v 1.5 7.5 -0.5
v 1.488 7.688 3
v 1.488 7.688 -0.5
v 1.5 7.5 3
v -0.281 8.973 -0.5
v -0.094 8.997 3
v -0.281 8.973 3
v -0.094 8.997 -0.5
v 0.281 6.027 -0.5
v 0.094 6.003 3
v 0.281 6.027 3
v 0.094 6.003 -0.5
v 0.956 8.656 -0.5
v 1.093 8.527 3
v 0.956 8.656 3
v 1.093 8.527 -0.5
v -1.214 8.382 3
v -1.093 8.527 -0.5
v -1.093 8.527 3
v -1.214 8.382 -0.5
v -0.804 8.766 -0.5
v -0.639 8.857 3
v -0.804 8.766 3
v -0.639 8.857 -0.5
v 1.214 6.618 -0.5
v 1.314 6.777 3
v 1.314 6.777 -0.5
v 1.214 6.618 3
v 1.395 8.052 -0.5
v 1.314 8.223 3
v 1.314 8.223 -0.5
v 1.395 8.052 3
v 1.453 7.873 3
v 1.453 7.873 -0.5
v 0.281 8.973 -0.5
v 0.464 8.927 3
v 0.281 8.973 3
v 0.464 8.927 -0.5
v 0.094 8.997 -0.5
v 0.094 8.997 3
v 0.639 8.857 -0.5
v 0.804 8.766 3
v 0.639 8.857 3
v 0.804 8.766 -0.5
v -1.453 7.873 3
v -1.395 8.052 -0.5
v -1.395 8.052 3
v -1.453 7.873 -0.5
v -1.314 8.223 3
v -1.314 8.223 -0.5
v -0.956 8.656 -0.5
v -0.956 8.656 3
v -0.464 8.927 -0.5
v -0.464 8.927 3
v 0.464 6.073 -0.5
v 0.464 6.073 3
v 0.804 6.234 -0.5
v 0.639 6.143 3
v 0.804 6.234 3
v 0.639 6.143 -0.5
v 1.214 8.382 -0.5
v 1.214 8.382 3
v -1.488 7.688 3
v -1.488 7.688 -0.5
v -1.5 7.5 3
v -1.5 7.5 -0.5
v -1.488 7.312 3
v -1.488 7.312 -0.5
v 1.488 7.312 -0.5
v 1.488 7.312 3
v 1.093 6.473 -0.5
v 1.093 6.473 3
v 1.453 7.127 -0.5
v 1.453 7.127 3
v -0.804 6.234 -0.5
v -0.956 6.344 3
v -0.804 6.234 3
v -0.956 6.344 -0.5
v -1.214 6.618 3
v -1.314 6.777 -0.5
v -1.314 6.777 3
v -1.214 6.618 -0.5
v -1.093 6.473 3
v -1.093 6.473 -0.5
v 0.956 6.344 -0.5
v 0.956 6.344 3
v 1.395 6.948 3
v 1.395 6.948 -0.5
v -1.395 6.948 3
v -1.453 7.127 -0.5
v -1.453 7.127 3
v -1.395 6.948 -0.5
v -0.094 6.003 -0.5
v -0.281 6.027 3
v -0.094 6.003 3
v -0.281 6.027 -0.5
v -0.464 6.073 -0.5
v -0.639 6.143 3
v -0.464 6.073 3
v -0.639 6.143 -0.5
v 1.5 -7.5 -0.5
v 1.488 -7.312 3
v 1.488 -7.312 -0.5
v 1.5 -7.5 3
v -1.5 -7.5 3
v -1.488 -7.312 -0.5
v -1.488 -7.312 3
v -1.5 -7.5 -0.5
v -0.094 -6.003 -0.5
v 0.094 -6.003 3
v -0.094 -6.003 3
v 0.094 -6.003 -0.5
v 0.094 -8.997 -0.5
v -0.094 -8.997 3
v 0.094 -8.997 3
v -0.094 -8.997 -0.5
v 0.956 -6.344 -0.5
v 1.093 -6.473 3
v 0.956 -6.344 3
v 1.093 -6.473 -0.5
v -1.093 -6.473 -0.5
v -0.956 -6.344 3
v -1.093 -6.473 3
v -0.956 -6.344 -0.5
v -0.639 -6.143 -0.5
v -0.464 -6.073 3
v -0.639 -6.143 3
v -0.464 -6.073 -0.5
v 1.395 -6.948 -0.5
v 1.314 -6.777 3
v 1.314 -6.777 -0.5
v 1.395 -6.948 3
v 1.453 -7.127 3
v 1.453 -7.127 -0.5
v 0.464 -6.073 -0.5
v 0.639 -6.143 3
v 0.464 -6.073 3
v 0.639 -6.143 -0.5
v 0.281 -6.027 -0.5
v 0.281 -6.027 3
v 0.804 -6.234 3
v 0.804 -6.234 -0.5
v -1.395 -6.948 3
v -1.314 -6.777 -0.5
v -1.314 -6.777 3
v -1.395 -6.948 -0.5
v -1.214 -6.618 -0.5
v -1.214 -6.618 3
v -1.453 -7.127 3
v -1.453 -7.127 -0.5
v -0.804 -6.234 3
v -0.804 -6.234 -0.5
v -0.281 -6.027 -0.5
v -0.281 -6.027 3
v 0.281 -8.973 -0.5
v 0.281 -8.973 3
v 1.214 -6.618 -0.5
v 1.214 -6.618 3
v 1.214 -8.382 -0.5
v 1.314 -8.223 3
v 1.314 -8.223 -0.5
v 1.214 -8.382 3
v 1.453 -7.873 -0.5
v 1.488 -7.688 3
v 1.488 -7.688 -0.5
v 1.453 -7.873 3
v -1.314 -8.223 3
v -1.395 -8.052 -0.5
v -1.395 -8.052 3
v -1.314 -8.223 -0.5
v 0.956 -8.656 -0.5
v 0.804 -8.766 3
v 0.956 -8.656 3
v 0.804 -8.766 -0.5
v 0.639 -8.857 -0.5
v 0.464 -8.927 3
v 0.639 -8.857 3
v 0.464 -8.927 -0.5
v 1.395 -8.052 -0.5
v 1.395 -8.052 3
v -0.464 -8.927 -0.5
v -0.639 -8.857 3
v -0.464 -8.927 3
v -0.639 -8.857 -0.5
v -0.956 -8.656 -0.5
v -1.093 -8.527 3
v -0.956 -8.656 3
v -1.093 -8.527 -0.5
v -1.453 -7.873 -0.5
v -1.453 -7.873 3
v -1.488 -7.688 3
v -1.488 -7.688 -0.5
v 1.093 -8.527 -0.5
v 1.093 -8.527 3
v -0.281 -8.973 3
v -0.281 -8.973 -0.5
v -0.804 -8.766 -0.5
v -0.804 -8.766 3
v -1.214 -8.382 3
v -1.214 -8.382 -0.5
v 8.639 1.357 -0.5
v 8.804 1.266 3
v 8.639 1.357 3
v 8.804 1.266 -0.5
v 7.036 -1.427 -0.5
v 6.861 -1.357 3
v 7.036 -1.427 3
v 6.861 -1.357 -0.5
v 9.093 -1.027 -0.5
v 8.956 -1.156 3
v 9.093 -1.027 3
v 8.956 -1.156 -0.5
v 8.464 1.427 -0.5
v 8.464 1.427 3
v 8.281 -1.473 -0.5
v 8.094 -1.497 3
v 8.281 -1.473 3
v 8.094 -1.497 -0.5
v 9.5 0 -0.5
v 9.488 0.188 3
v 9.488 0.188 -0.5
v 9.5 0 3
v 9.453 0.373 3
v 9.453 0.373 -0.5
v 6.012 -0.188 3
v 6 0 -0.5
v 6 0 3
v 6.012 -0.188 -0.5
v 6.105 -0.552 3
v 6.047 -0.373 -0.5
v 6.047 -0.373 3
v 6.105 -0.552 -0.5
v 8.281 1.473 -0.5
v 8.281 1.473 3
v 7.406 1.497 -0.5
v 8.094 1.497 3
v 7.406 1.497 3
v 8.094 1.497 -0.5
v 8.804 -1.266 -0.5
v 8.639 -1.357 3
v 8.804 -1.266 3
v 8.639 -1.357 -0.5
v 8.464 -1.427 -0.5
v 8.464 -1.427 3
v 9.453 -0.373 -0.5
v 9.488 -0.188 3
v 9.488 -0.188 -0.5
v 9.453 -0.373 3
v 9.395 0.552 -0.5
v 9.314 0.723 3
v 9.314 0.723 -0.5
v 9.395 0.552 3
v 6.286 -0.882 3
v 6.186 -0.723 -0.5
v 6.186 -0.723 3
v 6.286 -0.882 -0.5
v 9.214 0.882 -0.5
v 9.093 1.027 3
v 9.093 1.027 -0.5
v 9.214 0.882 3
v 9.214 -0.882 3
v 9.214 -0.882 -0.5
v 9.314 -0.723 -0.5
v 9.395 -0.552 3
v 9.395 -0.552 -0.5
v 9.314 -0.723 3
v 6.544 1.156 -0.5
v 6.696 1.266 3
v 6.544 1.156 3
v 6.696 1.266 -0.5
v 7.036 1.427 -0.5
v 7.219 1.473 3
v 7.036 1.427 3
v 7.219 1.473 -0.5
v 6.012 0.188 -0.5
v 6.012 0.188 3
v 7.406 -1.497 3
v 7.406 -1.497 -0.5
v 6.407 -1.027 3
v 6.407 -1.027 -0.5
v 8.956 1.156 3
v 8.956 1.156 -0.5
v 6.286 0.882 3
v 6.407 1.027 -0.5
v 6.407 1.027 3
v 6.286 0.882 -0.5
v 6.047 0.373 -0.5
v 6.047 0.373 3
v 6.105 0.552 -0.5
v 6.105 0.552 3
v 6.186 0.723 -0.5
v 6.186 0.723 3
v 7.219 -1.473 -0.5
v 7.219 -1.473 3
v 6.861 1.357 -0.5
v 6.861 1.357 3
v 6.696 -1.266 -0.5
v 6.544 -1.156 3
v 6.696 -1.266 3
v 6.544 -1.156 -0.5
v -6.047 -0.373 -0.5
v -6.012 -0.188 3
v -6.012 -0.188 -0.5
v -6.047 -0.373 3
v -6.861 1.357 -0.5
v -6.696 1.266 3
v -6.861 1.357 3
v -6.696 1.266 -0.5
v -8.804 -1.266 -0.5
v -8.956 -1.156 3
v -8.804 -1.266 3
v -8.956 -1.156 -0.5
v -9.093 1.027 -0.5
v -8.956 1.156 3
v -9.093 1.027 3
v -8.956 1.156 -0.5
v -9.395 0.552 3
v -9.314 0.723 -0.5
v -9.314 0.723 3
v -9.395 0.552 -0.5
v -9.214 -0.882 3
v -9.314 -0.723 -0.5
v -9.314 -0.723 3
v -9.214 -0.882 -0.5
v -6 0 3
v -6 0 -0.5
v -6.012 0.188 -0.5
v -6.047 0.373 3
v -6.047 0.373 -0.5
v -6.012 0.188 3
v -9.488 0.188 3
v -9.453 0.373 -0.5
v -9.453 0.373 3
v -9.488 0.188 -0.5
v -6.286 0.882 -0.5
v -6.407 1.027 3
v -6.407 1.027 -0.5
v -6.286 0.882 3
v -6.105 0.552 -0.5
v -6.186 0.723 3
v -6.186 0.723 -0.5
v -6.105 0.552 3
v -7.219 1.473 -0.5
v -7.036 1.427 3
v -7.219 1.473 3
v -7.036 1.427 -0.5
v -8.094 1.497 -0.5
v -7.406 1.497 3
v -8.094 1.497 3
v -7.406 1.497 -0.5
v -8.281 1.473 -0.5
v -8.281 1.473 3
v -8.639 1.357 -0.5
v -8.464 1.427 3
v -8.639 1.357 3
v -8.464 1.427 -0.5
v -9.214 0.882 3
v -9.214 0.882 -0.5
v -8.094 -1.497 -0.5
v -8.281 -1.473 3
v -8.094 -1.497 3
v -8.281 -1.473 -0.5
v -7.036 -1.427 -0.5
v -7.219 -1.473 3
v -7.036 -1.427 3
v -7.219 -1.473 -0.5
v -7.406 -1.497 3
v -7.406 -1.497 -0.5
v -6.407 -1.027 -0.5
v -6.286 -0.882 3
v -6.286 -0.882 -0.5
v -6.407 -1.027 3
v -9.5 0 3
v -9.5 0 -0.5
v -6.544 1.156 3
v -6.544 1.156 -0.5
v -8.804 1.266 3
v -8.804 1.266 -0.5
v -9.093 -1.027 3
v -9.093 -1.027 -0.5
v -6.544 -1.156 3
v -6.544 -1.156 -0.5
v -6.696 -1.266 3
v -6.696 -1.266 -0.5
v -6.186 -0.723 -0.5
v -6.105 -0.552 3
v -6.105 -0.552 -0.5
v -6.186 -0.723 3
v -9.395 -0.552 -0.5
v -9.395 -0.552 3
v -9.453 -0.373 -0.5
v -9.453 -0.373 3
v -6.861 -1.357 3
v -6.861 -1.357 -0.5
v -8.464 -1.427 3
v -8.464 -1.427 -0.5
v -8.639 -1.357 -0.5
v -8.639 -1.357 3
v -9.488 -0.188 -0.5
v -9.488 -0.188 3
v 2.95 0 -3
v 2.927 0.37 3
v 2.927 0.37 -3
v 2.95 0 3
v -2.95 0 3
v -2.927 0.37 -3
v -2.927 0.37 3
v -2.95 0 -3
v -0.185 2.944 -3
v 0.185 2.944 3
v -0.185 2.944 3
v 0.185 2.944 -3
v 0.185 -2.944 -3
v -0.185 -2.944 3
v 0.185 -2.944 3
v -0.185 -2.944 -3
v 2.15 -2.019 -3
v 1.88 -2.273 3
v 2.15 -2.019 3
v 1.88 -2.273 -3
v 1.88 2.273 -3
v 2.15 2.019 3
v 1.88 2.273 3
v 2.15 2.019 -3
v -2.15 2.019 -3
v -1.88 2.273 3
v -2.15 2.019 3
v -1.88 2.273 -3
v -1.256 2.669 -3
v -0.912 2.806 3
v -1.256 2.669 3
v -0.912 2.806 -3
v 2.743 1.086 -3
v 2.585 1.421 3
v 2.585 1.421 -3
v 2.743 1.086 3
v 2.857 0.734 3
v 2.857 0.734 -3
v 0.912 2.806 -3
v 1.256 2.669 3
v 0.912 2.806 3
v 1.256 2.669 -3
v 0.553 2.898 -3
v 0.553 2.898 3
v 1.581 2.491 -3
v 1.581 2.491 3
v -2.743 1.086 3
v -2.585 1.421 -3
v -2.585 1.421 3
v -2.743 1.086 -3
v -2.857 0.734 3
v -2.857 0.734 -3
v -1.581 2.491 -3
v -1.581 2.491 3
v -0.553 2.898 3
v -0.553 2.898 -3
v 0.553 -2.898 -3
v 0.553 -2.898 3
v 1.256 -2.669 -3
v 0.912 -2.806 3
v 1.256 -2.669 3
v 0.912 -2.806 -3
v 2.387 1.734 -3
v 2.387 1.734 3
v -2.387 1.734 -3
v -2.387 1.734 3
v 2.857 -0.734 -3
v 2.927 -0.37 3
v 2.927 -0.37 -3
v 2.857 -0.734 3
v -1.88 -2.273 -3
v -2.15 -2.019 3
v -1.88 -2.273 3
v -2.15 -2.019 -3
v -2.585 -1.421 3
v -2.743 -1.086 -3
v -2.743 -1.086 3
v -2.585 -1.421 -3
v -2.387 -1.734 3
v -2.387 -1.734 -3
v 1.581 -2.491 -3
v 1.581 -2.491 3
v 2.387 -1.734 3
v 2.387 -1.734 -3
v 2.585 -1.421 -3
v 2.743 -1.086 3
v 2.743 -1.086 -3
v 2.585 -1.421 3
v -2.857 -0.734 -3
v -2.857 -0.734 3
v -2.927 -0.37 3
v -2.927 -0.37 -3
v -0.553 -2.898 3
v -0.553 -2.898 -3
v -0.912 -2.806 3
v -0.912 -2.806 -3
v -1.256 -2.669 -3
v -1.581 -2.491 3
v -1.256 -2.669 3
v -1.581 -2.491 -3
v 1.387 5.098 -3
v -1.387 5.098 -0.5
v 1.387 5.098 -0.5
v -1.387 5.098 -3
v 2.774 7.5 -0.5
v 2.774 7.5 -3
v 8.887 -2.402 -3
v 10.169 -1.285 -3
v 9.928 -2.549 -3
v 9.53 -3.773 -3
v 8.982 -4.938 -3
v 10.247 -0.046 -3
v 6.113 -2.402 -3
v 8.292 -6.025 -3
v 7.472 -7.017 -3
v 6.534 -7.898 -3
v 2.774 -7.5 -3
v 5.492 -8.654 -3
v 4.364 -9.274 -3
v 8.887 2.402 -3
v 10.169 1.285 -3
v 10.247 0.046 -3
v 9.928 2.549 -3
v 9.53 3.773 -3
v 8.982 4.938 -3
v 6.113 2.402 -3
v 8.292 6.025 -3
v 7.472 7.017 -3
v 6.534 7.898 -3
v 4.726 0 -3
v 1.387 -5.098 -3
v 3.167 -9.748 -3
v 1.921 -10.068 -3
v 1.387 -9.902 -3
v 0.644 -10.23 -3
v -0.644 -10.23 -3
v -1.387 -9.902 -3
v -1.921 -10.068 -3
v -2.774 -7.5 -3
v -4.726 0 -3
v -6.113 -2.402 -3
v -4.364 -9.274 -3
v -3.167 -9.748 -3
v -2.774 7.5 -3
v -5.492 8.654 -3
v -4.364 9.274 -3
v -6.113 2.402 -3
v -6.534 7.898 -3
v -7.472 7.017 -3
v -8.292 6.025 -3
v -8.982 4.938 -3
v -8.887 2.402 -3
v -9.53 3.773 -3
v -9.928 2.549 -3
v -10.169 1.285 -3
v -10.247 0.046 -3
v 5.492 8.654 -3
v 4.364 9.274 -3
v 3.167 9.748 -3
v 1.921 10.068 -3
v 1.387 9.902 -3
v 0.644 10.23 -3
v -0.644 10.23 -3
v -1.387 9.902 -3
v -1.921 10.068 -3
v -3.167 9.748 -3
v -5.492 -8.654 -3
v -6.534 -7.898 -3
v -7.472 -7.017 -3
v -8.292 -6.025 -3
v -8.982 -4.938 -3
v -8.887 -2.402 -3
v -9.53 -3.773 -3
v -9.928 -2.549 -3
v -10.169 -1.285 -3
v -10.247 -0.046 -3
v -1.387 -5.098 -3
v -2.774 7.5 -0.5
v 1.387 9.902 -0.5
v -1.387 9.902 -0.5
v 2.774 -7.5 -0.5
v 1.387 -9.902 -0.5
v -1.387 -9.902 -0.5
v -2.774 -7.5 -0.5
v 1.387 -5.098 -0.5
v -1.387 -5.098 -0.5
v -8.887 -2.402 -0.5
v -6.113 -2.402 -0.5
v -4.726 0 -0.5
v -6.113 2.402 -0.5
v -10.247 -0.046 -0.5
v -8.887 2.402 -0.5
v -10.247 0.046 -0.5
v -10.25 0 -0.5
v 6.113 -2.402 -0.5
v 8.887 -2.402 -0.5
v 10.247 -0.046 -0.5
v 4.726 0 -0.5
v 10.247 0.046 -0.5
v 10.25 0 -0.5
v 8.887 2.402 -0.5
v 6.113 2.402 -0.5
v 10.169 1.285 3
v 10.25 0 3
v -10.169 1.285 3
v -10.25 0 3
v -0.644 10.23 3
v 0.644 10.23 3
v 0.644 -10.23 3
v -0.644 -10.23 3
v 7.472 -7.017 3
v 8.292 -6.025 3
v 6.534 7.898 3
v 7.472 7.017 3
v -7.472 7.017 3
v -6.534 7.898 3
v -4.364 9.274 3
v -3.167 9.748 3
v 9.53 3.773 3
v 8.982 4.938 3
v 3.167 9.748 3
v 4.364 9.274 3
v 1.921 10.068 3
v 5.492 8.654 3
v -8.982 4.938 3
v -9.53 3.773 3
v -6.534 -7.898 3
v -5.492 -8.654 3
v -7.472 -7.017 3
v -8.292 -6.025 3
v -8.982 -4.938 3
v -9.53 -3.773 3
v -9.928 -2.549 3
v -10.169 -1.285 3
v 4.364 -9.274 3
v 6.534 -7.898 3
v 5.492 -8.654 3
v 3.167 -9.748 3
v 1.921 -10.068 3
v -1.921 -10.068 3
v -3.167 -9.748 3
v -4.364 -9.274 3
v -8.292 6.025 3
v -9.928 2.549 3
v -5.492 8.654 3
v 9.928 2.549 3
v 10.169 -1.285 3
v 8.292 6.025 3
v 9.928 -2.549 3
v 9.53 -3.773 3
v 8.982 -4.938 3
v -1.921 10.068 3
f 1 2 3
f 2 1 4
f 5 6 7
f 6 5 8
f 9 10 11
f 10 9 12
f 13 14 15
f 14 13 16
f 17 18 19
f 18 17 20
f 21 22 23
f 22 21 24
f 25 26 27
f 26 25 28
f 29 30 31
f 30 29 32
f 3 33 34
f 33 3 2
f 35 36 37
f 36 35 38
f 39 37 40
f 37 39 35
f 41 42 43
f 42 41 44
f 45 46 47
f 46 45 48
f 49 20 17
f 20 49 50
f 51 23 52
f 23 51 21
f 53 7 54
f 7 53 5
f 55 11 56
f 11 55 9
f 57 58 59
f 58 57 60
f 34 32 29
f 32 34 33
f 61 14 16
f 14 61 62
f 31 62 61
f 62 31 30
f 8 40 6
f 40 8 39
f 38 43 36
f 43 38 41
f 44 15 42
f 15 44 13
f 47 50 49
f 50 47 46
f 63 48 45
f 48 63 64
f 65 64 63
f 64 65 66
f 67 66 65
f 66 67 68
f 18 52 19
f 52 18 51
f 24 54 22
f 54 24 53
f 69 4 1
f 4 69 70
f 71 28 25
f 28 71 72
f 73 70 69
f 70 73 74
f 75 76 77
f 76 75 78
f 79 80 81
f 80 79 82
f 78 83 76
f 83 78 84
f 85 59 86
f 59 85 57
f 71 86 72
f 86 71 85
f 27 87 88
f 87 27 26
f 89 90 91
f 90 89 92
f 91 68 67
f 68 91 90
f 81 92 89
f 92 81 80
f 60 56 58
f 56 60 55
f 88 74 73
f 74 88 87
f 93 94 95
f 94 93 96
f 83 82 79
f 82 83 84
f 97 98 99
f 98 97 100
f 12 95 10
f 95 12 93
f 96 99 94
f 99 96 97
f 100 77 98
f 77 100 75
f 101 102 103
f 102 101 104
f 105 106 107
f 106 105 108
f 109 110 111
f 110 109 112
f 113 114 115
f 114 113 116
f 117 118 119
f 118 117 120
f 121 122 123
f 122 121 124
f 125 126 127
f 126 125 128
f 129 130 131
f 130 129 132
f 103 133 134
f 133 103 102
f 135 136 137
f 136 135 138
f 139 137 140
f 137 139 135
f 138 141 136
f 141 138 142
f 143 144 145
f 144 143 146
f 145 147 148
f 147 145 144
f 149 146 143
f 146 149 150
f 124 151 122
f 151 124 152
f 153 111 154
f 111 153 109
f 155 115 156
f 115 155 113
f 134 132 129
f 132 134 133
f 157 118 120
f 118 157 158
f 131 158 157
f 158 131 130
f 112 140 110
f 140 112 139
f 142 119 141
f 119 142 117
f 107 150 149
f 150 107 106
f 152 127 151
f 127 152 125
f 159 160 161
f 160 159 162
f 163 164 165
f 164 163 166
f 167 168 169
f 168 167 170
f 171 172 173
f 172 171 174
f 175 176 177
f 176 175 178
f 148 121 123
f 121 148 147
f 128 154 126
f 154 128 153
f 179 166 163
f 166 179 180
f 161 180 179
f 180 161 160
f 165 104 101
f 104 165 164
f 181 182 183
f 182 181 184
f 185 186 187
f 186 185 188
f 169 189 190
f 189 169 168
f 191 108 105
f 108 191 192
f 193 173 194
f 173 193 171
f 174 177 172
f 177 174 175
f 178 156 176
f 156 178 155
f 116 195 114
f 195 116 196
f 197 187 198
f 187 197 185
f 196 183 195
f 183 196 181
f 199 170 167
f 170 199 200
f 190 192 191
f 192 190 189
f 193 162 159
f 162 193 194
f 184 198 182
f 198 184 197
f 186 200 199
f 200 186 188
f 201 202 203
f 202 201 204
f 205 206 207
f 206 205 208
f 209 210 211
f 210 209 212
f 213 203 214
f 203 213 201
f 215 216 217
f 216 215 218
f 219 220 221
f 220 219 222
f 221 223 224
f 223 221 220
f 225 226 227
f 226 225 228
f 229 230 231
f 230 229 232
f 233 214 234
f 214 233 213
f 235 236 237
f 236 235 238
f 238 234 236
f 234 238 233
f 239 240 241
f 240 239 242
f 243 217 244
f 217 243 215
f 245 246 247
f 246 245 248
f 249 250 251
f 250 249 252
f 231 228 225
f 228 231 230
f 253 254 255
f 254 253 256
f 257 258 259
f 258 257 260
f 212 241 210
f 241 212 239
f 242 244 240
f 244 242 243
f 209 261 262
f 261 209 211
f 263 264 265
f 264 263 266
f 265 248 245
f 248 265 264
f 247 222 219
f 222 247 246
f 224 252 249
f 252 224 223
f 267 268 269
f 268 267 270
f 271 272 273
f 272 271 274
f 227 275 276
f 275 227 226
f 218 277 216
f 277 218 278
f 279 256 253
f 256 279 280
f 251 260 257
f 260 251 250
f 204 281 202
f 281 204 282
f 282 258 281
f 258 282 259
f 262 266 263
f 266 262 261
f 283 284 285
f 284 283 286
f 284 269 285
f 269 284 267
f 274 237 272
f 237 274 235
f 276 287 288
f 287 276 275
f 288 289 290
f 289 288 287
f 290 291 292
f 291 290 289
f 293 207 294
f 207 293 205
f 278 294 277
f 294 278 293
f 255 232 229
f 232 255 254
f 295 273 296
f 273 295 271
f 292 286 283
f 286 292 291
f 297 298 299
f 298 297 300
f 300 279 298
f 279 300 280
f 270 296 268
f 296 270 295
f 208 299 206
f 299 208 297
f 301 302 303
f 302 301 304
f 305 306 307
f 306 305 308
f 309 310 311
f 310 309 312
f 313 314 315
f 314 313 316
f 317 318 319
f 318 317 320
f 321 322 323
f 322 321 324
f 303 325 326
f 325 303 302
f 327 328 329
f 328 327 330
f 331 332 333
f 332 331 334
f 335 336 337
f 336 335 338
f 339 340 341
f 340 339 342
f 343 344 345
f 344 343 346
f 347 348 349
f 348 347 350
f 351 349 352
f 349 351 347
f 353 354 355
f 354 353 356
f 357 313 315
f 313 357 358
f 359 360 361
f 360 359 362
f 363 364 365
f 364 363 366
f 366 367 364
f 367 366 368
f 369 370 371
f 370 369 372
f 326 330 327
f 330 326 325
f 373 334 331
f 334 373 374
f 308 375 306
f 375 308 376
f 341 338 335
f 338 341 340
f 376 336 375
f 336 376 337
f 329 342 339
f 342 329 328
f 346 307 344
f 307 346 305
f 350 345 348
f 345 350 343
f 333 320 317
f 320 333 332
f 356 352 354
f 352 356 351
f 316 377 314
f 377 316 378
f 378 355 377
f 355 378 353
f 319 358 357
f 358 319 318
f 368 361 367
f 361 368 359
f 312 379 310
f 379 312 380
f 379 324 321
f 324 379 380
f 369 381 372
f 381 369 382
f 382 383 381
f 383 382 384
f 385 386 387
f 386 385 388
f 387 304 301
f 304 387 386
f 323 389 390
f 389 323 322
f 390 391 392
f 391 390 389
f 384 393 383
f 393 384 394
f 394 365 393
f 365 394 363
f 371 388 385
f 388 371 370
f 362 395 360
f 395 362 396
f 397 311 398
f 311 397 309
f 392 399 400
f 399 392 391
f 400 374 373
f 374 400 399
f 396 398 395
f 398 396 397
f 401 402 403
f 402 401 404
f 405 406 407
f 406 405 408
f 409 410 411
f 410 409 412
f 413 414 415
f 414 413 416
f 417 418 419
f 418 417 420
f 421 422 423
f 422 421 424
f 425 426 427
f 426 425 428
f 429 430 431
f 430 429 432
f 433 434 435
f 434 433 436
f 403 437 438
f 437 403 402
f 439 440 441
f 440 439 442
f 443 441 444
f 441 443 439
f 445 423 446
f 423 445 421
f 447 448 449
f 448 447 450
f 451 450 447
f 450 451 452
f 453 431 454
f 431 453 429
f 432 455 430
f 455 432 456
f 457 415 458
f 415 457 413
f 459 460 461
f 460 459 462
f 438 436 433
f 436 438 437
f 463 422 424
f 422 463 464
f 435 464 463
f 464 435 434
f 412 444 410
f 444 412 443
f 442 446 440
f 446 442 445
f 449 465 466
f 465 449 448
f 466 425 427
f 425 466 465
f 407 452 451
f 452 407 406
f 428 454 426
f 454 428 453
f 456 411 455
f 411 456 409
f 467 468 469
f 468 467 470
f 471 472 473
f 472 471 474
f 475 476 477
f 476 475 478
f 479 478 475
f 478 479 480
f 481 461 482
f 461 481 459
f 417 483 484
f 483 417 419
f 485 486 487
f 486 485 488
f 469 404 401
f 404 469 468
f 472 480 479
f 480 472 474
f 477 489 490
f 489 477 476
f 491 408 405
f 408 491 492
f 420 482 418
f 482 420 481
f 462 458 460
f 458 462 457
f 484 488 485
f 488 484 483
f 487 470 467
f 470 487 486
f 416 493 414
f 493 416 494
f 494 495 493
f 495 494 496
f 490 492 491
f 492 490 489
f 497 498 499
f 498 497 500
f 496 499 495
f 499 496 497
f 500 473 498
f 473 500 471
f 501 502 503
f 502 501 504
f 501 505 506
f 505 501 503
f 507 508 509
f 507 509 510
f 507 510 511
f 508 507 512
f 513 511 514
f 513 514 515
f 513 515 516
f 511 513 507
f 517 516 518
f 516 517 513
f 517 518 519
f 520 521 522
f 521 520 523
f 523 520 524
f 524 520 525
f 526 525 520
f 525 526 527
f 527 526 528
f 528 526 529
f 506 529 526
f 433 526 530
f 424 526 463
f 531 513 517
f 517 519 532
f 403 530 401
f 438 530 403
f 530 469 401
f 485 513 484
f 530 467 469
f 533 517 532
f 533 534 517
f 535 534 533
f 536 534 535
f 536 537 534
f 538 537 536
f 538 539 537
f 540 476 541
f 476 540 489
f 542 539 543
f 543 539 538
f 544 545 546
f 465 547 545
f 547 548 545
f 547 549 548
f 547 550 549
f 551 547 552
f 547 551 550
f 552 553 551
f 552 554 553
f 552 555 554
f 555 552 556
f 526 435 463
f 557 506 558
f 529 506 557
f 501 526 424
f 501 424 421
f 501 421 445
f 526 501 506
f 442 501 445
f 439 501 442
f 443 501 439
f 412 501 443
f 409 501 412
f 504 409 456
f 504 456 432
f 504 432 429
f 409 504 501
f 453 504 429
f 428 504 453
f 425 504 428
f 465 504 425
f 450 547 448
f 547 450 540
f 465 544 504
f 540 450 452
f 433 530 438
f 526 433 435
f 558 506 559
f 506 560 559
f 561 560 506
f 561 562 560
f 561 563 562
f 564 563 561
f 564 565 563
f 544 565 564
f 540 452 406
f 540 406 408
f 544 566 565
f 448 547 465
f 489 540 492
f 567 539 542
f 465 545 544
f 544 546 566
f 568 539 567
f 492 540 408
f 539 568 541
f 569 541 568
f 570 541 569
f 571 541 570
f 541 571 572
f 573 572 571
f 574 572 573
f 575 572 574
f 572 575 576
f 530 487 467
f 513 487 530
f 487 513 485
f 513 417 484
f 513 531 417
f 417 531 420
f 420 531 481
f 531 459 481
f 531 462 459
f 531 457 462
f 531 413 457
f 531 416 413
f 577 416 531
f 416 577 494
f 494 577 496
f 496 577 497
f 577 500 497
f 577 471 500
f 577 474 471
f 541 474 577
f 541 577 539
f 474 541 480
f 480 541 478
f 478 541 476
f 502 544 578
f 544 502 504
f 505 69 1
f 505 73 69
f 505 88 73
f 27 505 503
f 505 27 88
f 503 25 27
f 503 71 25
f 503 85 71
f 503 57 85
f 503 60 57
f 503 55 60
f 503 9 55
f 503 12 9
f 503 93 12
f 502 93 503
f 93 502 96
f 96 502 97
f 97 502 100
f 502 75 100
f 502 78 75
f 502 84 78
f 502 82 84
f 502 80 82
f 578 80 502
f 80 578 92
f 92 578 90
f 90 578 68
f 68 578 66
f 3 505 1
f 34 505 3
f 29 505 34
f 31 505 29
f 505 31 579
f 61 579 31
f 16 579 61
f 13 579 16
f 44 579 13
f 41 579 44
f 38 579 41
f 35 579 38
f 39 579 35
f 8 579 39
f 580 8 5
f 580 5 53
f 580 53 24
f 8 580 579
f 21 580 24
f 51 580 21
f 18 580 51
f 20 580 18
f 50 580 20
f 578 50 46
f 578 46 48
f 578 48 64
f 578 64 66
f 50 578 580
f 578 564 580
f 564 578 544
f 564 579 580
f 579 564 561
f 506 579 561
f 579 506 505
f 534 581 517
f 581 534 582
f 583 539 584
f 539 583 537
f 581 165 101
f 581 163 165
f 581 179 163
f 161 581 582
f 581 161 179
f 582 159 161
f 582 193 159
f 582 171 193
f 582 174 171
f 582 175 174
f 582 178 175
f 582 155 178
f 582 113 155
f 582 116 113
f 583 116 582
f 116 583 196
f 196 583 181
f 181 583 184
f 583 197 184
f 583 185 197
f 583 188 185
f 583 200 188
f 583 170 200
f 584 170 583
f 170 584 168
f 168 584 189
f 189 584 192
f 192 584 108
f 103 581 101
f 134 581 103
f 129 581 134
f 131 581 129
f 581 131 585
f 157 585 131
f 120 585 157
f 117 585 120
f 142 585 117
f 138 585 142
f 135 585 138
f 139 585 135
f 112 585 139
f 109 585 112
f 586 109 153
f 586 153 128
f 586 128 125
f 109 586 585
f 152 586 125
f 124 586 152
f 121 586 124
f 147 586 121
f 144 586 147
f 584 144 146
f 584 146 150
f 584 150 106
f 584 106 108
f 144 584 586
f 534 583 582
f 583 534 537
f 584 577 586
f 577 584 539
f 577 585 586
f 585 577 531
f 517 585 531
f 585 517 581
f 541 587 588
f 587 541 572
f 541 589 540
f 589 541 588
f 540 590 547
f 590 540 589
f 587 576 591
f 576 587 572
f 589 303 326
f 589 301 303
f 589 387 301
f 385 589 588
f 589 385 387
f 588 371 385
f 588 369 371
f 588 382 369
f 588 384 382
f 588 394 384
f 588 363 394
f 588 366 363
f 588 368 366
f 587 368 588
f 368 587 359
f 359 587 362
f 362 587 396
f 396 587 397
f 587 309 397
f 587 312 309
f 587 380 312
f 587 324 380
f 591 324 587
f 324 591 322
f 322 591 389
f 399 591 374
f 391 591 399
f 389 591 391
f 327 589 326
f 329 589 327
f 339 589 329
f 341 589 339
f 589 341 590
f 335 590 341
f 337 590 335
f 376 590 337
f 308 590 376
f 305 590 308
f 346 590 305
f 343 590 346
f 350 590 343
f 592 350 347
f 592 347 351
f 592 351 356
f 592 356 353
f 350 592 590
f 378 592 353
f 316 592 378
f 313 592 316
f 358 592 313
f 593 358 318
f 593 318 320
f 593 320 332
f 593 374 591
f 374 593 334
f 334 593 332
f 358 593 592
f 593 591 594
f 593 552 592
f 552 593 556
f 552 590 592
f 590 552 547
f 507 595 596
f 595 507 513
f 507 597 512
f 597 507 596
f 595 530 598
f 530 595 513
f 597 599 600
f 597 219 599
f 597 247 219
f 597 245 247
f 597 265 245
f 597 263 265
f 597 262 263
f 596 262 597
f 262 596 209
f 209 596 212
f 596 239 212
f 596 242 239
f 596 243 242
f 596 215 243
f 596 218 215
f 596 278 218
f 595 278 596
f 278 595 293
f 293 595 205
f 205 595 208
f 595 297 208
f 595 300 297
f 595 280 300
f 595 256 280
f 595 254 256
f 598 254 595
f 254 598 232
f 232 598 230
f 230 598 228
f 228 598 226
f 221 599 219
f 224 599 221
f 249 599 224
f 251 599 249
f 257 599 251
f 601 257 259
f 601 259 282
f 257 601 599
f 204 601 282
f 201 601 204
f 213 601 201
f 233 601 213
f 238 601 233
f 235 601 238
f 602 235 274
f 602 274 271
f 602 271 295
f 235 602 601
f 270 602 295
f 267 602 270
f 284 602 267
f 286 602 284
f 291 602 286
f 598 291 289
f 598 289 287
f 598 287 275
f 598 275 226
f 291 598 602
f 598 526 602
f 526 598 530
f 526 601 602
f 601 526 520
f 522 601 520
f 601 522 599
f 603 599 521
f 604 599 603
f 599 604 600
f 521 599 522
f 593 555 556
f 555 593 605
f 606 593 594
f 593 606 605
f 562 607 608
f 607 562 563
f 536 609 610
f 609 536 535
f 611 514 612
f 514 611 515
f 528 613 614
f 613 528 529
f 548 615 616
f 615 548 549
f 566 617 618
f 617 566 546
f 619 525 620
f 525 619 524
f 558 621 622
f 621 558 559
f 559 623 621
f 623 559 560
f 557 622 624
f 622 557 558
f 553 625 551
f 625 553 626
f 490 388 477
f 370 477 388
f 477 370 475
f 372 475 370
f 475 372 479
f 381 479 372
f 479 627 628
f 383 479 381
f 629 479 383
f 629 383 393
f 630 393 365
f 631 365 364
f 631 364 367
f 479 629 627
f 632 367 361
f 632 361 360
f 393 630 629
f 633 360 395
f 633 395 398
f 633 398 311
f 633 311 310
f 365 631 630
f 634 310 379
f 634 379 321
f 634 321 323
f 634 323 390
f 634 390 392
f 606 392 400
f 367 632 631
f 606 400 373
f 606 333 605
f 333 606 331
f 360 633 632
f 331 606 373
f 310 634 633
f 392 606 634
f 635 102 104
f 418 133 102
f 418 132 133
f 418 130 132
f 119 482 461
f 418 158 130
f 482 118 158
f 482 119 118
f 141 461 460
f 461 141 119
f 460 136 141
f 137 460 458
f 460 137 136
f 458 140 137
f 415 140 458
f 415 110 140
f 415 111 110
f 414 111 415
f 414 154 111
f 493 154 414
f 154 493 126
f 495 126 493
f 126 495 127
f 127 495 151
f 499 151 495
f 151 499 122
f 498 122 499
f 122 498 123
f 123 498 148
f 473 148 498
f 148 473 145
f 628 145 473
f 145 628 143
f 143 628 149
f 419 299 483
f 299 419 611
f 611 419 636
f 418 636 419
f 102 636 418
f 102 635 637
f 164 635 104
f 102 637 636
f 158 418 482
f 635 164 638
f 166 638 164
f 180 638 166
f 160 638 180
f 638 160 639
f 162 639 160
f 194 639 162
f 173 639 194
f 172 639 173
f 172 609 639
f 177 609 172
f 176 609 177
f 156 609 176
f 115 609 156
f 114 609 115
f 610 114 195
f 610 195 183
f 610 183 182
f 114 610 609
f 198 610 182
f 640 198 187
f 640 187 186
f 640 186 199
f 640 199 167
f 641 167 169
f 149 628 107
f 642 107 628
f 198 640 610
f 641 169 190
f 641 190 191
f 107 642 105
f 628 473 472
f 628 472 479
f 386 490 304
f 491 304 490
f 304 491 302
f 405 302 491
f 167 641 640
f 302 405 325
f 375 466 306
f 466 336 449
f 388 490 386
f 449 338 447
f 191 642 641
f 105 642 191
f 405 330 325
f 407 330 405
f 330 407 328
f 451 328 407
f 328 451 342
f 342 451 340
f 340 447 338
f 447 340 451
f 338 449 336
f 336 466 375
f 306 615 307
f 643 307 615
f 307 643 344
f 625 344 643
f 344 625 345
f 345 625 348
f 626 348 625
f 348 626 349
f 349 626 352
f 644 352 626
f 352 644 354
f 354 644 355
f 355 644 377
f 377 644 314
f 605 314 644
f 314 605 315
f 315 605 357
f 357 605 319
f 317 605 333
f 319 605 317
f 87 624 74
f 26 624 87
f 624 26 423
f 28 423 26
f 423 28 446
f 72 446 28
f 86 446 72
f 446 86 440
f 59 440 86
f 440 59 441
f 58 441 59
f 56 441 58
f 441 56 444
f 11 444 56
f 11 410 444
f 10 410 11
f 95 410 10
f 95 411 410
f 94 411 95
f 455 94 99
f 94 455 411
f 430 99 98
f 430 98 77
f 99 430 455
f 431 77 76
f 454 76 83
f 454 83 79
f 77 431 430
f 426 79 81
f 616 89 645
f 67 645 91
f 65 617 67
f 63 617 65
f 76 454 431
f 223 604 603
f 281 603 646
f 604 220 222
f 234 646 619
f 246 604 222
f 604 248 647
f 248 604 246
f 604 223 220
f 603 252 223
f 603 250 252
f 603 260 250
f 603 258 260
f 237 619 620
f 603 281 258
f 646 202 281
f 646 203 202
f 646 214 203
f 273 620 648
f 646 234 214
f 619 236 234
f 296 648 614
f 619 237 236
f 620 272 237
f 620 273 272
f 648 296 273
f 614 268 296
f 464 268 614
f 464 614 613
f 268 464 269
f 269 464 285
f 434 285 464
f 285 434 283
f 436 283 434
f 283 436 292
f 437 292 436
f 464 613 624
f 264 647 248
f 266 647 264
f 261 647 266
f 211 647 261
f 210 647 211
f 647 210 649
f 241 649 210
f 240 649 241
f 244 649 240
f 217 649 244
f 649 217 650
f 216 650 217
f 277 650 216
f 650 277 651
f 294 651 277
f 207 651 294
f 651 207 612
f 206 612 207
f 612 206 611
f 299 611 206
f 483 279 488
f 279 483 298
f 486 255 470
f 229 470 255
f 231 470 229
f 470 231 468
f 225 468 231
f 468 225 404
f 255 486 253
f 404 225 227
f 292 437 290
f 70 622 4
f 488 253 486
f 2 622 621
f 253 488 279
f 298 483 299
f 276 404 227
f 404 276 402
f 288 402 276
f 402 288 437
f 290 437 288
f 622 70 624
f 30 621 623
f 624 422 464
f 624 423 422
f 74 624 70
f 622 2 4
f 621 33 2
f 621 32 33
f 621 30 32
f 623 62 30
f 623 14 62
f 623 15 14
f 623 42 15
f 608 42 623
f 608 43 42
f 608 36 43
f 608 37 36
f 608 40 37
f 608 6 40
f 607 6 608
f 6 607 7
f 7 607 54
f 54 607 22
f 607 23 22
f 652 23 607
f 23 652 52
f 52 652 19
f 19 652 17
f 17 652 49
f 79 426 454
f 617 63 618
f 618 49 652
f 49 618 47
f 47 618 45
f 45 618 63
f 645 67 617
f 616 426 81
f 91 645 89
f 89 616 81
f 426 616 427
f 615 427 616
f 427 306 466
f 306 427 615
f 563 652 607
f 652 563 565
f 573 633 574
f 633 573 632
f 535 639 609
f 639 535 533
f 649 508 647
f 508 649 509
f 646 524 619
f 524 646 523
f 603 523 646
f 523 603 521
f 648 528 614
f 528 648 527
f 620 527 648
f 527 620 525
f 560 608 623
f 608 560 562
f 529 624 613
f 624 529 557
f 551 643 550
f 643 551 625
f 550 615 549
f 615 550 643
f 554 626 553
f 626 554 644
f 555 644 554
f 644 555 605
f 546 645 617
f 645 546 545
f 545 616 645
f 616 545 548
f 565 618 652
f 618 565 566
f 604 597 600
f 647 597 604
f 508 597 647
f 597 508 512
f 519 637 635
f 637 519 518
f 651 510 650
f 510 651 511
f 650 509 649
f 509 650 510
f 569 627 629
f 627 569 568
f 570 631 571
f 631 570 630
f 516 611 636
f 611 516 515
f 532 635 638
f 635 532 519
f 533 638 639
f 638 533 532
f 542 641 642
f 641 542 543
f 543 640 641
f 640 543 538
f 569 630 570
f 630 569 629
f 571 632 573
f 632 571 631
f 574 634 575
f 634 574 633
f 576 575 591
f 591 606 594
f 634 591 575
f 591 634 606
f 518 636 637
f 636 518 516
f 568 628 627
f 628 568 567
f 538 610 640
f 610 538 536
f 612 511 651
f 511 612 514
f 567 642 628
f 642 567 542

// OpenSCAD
$fn = 50;


difference() {
	union() {
		translate(v = [0, 0, -3.0000000000]) {
			rotate(a = [0, 0, 0]) {
				cylinder(h = 6, r = 10.2500000000);
			}
		}
	}
	union() {
		translate(v = [0, 7.5000000000, -125.0000000000]) {
			rotate(a = [0, 0, 0]) {
				cylinder(h = 250, r = 1.5000000000);
			}
		}
		translate(v = [0, -7.5000000000, -125.0000000000]) {
			rotate(a = [0, 0, 0]) {
				cylinder(h = 250, r = 1.5000000000);
			}
		}
		translate(v = [7.7500000000, 0, -125.0000000000]) {
			rotate(a = [0, 0, 0]) {
				hull() {
					translate(v = [0.2500000000, 0, 0]) {
						rotate(a = [0, 0, 0]) {
							translate(v = [0, 0, 0]) {
								rotate(a = [0, 0, 0]) {
									cylinder(h = 250, r = 1.5000000000);
								}
							}
						}
					}
					translate(v = [-0.2500000000, 0, 0]) {
						rotate(a = [0, 0, 0]) {
							translate(v = [0, 0, 0]) {
								rotate(a = [0, 0, 0]) {
									cylinder(h = 250, r = 1.5000000000);
								}
							}
						}
					}
				}
			}
		}
		translate(v = [-7.7500000000, 0, -125.0000000000]) {
			rotate(a = [0, 0, 0]) {
				hull() {
					translate(v = [0.2500000000, 0, 0]) {
						rotate(a = [0, 0, 0]) {
							translate(v = [0, 0, 0]) {
								rotate(a = [0, 0, 0]) {
									cylinder(h = 250, r = 1.5000000000);
								}
							}
						}
					}
					translate(v = [-0.2500000000, 0, 0]) {
						rotate(a = [0, 0, 0]) {
							translate(v = [0, 0, 0]) {
								rotate(a = [0, 0, 0]) {
									cylinder(h = 250, r = 1.5000000000);
								}
							}
						}
					}
				}
			}
		}
		translate(v = [0, 0, -125.0000000000]) {
			rotate(a = [0, 0, 0]) {
				cylinder(h = 250, r = 2.9500000000);
			}
		}
		translate(v = [0, 7.5000000000, -3.0000000000]) {
			rotate(a = [0, 0, 0]) {
				translate(v = [0, 0, 0]) {
					rotate(a = [0, 0, 0]) {
						linear_extrude(height = 2.5000000000) {
							polygon(points = [[2.7735000000, 0.0000000000], [1.3867500000, 2.4019214574], [-1.3867500000, 2.4019214574], [-2.7735000000, 0.0000000000], [-1.3867500000, -2.4019214574], [1.3867500000, -2.4019214574]]);
						}
					}
				}
			}
		}
		translate(v = [0, -7.5000000000, -3.0000000000]) {
			rotate(a = [0, 0, 0]) {
				translate(v = [0, 0, 0]) {
					rotate(a = [0, 0, 0]) {
						linear_extrude(height = 2.5000000000) {
							polygon(points = [[2.7735000000, 0.0000000000], [1.3867500000, 2.4019214574], [-1.3867500000, 2.4019214574], [-2.7735000000, 0.0000000000], [-1.3867500000, -2.4019214574], [1.3867500000, -2.4019214574]]);
						}
					}
				}
			}
		}
		translate(v = [-7.5000000000, 0, -3.0000000000]) {
			rotate(a = [0, 0, 0]) {
				translate(v = [0, 0, 0]) {
					rotate(a = [0, 0, 0]) {
						linear_extrude(height = 2.5000000000) {
							polygon(points = [[2.7735000000, 0.0000000000], [1.3867500000, 2.4019214574], [-1.3867500000, 2.4019214574], [-2.7735000000, 0.0000000000], [-1.3867500000, -2.4019214574], [1.3867500000, -2.4019214574]]);
						}
					}
				}
			}
		}
		translate(v = [7.5000000000, 0, -3.0000000000]) {
			rotate(a = [0, 0, 0]) {
				translate(v = [0, 0, 0]) {
					rotate(a = [0, 0, 0]) {
						linear_extrude(height = 2.5000000000) {
							polygon(points = [[2.7735000000, 0.0000000000], [1.3867500000, 2.4019214574], [-1.3867500000, 2.4019214574], [-2.7735000000, 0.0000000000], [-1.3867500000, -2.4019214574], [1.3867500000, -2.4019214574]]);
						}
					}
				}
			}
		}
	}
}
